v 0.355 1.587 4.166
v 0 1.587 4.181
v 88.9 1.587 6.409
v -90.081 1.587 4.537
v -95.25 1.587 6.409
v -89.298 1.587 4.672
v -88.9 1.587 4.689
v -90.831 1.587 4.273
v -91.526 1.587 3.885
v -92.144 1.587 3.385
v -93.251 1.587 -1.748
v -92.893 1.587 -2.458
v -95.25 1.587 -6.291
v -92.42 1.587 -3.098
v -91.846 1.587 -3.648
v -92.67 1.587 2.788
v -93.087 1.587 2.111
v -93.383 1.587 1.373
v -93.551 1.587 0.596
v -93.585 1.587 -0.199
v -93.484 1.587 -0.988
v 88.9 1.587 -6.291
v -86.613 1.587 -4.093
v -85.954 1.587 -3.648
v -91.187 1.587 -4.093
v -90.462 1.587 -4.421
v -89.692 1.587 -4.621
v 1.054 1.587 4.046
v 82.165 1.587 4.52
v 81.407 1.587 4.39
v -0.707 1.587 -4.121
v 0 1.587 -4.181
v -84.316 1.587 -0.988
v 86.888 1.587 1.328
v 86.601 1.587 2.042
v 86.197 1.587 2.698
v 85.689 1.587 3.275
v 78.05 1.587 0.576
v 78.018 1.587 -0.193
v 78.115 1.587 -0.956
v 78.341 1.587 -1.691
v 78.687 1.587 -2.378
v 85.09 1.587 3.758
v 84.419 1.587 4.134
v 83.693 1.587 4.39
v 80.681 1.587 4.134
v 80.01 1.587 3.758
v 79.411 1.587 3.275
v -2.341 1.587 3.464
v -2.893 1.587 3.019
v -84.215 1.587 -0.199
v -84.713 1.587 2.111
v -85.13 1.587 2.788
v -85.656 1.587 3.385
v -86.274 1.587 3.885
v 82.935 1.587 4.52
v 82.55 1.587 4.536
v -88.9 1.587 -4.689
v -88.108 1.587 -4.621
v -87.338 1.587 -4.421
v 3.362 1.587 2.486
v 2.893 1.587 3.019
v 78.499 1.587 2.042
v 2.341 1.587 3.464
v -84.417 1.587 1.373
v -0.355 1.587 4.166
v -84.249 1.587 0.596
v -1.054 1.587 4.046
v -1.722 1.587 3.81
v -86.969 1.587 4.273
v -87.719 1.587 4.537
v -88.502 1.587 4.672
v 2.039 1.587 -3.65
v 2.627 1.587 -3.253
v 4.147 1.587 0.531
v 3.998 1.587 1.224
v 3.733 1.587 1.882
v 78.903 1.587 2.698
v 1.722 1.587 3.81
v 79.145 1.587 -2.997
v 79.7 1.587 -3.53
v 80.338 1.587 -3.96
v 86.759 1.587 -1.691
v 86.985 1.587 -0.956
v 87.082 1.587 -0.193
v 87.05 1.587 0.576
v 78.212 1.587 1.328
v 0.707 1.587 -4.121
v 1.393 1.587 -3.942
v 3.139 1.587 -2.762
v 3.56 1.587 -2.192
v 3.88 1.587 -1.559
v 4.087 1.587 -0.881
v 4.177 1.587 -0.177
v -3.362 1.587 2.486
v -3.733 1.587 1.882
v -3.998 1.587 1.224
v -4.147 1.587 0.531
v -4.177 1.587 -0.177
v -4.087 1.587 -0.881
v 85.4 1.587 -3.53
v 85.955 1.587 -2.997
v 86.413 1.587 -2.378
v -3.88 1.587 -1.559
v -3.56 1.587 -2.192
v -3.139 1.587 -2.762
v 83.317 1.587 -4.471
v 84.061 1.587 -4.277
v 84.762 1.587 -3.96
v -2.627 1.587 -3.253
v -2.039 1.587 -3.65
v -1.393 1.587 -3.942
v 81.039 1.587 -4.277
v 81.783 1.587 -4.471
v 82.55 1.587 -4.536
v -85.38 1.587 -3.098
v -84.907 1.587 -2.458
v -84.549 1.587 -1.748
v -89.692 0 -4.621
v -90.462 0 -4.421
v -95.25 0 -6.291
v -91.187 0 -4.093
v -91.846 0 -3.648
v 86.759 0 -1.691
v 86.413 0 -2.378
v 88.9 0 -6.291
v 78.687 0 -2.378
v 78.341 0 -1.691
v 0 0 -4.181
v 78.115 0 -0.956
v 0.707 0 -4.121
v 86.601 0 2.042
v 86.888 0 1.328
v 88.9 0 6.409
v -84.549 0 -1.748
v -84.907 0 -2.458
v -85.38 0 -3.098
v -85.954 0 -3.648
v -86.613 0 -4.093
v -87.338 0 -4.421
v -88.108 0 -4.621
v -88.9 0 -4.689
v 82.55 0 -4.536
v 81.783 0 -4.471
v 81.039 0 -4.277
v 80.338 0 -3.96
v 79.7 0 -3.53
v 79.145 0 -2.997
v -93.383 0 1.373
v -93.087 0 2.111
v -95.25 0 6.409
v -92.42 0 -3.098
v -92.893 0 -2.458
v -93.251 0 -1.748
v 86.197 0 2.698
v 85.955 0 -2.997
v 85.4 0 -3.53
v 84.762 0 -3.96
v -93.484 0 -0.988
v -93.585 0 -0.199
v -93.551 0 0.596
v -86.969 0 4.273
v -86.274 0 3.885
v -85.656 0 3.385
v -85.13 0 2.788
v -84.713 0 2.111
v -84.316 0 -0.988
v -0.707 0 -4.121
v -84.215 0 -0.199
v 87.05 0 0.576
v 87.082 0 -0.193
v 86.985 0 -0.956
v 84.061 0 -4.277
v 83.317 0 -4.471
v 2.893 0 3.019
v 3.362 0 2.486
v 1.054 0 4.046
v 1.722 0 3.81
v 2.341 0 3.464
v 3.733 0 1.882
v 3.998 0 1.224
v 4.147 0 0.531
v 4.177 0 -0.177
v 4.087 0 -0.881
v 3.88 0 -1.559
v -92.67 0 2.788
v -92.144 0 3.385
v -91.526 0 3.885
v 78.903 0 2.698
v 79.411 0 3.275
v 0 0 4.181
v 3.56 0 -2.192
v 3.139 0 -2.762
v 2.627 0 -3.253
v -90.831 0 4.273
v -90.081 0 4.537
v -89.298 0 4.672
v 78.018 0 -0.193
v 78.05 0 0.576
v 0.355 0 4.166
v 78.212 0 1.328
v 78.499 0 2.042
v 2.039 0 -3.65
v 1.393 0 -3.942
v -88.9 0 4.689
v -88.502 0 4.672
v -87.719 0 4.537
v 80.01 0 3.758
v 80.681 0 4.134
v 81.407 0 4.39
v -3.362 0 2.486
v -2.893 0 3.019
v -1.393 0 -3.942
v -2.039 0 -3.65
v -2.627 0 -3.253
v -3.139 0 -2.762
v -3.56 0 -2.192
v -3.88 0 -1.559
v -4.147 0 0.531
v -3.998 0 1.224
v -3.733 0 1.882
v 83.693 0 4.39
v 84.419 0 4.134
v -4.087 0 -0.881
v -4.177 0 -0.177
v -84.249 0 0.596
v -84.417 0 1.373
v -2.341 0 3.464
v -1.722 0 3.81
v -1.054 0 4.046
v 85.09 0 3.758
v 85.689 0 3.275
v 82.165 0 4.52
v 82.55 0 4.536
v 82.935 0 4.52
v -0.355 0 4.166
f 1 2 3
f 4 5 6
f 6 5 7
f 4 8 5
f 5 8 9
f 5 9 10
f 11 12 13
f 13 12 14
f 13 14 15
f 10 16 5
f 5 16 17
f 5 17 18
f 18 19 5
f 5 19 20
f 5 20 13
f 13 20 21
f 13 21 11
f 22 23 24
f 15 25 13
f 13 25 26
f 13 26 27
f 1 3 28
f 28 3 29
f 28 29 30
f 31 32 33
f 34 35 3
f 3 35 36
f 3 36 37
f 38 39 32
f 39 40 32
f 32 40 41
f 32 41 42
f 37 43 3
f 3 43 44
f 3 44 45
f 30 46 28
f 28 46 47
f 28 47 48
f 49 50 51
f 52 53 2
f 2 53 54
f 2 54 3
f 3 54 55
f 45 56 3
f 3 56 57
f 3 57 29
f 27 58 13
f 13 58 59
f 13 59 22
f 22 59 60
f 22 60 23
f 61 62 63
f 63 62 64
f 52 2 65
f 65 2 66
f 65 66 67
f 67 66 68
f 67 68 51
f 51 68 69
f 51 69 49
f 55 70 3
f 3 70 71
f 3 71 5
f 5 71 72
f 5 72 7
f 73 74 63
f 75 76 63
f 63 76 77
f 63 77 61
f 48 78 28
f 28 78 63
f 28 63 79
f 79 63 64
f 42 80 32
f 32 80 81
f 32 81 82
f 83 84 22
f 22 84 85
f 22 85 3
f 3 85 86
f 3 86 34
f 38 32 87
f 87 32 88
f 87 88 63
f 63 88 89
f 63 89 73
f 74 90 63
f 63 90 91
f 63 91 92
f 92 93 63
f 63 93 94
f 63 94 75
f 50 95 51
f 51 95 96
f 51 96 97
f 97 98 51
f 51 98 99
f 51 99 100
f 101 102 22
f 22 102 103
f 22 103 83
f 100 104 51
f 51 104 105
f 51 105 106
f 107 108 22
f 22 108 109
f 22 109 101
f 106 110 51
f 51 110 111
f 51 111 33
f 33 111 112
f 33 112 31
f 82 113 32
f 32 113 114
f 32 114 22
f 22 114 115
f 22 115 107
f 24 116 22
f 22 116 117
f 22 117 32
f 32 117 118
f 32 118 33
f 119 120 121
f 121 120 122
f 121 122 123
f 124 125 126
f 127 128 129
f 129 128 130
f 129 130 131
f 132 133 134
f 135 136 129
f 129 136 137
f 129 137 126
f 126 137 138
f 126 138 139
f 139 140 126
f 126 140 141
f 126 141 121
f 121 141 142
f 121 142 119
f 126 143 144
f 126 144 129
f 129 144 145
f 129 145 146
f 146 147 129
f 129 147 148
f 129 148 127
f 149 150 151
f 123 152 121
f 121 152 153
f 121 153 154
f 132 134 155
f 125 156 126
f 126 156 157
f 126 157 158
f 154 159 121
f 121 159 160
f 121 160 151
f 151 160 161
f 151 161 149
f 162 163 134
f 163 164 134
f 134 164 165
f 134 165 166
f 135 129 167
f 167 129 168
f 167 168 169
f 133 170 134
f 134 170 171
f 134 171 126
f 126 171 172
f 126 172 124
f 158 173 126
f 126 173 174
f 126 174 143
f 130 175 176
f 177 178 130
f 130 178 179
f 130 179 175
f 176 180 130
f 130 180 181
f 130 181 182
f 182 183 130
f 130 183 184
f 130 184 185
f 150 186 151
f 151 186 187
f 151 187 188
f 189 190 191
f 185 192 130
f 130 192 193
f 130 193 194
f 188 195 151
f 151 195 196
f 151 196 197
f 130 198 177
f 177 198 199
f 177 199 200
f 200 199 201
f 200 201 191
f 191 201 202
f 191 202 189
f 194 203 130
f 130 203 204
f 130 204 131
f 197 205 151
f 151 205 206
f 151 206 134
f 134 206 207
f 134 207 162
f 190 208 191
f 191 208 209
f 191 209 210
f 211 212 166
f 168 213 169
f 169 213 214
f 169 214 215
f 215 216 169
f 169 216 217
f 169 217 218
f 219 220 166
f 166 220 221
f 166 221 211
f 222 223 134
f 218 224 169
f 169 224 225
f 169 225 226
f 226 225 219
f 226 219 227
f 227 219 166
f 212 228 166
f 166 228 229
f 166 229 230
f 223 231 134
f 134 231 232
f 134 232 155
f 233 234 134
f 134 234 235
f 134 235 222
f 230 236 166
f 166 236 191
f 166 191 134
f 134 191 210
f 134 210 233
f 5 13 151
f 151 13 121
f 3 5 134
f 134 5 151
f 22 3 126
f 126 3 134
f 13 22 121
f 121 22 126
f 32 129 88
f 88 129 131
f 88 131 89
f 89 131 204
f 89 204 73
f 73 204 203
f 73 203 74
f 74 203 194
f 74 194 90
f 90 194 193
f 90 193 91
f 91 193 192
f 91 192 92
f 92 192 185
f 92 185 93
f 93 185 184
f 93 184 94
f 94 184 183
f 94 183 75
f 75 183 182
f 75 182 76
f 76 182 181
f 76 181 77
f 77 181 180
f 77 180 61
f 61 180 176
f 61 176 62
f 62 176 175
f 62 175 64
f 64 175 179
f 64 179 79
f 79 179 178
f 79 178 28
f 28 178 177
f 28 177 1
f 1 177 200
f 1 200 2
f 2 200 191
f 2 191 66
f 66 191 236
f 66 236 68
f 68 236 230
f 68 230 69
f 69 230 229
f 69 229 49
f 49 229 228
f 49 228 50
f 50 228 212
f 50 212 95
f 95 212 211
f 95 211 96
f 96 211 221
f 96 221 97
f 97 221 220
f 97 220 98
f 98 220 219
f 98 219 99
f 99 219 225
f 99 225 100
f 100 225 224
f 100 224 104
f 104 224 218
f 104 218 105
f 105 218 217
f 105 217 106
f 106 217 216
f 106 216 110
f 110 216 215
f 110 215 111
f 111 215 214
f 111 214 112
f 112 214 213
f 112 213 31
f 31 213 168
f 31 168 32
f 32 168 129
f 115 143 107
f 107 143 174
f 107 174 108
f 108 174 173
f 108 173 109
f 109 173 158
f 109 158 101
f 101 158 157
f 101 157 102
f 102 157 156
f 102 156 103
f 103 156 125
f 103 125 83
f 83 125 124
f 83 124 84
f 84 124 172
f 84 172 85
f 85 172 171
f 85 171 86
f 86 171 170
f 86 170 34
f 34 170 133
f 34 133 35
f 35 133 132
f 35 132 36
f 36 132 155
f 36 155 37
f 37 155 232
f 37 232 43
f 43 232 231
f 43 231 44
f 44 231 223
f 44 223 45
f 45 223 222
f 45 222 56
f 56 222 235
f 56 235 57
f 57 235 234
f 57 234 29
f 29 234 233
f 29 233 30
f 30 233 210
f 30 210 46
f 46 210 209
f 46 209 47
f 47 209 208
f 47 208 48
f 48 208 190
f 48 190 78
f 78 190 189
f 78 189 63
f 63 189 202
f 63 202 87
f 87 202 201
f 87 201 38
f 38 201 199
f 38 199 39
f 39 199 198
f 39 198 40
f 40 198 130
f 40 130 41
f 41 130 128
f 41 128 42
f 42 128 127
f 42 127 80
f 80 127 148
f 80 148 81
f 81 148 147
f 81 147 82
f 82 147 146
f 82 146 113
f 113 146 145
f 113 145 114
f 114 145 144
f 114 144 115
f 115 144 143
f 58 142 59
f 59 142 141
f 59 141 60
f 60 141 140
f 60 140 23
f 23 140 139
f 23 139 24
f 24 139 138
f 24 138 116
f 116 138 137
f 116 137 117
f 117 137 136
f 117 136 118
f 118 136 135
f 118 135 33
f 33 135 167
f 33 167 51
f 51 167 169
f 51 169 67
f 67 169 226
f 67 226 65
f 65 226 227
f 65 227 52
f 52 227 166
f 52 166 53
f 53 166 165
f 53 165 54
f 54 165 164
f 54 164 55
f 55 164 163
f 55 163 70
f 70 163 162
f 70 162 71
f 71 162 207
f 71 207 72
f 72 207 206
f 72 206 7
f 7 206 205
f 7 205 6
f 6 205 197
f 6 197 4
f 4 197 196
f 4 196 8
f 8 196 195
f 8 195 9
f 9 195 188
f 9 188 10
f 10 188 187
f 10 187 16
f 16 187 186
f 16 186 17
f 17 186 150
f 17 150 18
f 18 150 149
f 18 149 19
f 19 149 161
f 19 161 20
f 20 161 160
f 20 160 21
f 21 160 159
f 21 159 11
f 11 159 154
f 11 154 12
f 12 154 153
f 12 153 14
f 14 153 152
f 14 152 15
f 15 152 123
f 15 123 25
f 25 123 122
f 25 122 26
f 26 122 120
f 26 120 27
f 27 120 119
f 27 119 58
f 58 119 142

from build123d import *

# Parameters (mm, degrees)
SKETCH2_W           = 184.15
SKETCH2_H           = 12.7
SKETCH2_R           = 4.181180969
SKETCH2_R_2         = 4.536454583
SKETCH2_R_3         = 4.688788017
BOSS_EXTRUDE1_DEPTH = 1.5875


with BuildPart() as part:
    # Sketch2 → Boss-Extrude1 (new body)
    with BuildSketch(Plane(origin=(0, 0, 0), x_dir=(1, 0, 0), z_dir=(0, 1, 0))):
        with Locations((-3.175, -0.059345794)):
            Rectangle(SKETCH2_W, SKETCH2_H)
        Circle(SKETCH2_R, mode=Mode.SUBTRACT)
        with Locations((82.55, 0)):
            Circle(SKETCH2_R_2, mode=Mode.SUBTRACT)
        with Locations((-88.9, 0)):
            Circle(SKETCH2_R_3, mode=Mode.SUBTRACT)
    extrude(amount=BOSS_EXTRUDE1_DEPTH)


solid = part.part
